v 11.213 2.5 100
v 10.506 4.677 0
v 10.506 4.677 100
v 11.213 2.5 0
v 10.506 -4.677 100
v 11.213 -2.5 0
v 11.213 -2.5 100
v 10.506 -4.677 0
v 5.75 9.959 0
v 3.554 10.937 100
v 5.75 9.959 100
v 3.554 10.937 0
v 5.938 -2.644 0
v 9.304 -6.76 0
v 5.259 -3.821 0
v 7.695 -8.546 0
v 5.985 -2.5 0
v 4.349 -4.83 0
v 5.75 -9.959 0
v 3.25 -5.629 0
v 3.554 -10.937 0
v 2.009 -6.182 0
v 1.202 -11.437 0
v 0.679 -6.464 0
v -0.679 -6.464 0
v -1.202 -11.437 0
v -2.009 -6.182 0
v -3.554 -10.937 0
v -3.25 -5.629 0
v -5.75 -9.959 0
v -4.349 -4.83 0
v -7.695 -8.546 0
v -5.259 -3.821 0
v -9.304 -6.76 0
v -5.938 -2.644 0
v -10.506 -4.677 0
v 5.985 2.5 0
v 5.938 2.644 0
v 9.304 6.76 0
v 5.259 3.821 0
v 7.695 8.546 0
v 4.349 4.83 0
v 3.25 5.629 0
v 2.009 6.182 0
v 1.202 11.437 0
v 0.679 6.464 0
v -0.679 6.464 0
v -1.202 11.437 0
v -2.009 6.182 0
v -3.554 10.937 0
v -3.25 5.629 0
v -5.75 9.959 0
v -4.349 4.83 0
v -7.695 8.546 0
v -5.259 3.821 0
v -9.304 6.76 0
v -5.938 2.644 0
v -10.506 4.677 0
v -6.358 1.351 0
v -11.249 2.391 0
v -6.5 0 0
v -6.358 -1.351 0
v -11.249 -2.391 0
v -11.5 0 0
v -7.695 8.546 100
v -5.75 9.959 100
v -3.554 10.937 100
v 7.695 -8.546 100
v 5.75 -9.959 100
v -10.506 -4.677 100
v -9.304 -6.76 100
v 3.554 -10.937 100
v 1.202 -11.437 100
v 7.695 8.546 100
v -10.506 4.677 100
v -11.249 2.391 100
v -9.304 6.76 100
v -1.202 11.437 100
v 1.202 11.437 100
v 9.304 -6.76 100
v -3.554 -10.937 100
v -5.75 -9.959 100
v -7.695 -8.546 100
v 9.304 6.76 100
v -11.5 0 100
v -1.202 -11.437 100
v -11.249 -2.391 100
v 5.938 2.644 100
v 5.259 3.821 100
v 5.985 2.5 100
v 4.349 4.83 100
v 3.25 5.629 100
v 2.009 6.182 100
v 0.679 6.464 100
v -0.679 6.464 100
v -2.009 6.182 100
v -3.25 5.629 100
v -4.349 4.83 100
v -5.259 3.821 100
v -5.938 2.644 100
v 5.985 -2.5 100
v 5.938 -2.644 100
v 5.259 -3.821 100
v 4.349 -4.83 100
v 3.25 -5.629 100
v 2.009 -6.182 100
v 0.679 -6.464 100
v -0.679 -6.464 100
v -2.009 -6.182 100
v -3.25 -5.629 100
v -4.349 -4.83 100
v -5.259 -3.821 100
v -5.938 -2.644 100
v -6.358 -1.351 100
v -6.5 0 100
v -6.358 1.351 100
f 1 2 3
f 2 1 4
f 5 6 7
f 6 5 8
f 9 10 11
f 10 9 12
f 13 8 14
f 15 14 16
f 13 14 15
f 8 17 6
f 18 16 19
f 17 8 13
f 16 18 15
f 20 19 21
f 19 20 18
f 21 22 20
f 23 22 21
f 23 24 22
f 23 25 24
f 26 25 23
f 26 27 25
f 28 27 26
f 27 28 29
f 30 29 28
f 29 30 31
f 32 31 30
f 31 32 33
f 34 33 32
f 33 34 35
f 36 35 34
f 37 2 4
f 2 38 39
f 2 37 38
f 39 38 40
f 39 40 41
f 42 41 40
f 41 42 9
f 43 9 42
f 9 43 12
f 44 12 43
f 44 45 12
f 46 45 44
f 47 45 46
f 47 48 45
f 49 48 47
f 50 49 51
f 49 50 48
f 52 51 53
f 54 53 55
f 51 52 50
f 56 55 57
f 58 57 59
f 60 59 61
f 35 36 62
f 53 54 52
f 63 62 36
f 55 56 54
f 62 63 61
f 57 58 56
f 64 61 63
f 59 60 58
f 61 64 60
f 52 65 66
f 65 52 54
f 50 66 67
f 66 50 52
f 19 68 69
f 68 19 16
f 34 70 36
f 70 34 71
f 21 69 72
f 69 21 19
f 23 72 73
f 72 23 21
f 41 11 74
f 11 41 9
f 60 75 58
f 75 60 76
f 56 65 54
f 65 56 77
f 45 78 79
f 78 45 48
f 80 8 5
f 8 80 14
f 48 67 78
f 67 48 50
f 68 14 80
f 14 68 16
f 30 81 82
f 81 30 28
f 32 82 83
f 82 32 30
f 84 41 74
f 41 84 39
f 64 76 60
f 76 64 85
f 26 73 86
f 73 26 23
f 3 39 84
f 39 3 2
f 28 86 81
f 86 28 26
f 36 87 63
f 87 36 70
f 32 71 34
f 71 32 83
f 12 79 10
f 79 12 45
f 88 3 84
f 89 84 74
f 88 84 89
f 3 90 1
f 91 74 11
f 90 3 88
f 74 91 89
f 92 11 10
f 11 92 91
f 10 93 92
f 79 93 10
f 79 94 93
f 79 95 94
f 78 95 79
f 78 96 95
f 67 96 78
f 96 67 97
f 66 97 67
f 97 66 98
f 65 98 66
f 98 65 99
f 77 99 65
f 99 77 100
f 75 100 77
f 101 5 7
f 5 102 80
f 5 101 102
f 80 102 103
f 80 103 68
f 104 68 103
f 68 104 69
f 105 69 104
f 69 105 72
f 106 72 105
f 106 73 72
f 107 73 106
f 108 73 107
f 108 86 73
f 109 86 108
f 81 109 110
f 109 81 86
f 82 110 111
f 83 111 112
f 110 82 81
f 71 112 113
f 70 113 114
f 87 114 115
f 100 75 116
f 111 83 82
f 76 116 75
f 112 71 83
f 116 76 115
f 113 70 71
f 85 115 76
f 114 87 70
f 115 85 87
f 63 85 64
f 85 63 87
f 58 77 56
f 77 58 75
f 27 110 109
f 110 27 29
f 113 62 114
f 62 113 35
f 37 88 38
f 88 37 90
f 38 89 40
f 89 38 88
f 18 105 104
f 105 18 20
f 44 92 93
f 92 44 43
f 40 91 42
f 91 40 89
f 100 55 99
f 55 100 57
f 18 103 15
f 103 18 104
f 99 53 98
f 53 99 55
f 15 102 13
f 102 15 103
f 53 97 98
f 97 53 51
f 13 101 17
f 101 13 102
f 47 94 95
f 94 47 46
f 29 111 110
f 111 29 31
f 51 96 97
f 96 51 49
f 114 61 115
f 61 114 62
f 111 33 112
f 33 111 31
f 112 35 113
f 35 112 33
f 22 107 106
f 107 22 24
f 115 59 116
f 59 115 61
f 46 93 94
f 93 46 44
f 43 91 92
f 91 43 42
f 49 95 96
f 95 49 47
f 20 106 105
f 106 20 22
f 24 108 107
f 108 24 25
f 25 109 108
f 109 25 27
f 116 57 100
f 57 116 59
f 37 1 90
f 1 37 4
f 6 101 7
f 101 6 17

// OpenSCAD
// Define variables for the dimensions and hole positions in millimeters

inner_circle_diameter = 13;
outer_circle_diameter = inner_circle_diameter + 10;
outer_circle_height = 100;

hole_for_screw_width = 5;
hole_for_screw_length = 5;
hole_for_screw_height = outer_circle_height;





module body(){
    difference(){
            //outside
        cylinder(d=outer_circle_diameter, h=outer_circle_height, $fn=30);
        //inside
        cylinder(d=inner_circle_diameter, h=outer_circle_height, $fn=30);
    //hole for screw
        color ("red") {
            translate([inner_circle_diameter/2-2,-hole_for_screw_width/2,0]){
                cube([(outer_circle_diameter-inner_circle_diameter),hole_for_screw_width,outer_circle_height]);}
        }
    }

}


module main(){
       body();
 
}
    

main();
